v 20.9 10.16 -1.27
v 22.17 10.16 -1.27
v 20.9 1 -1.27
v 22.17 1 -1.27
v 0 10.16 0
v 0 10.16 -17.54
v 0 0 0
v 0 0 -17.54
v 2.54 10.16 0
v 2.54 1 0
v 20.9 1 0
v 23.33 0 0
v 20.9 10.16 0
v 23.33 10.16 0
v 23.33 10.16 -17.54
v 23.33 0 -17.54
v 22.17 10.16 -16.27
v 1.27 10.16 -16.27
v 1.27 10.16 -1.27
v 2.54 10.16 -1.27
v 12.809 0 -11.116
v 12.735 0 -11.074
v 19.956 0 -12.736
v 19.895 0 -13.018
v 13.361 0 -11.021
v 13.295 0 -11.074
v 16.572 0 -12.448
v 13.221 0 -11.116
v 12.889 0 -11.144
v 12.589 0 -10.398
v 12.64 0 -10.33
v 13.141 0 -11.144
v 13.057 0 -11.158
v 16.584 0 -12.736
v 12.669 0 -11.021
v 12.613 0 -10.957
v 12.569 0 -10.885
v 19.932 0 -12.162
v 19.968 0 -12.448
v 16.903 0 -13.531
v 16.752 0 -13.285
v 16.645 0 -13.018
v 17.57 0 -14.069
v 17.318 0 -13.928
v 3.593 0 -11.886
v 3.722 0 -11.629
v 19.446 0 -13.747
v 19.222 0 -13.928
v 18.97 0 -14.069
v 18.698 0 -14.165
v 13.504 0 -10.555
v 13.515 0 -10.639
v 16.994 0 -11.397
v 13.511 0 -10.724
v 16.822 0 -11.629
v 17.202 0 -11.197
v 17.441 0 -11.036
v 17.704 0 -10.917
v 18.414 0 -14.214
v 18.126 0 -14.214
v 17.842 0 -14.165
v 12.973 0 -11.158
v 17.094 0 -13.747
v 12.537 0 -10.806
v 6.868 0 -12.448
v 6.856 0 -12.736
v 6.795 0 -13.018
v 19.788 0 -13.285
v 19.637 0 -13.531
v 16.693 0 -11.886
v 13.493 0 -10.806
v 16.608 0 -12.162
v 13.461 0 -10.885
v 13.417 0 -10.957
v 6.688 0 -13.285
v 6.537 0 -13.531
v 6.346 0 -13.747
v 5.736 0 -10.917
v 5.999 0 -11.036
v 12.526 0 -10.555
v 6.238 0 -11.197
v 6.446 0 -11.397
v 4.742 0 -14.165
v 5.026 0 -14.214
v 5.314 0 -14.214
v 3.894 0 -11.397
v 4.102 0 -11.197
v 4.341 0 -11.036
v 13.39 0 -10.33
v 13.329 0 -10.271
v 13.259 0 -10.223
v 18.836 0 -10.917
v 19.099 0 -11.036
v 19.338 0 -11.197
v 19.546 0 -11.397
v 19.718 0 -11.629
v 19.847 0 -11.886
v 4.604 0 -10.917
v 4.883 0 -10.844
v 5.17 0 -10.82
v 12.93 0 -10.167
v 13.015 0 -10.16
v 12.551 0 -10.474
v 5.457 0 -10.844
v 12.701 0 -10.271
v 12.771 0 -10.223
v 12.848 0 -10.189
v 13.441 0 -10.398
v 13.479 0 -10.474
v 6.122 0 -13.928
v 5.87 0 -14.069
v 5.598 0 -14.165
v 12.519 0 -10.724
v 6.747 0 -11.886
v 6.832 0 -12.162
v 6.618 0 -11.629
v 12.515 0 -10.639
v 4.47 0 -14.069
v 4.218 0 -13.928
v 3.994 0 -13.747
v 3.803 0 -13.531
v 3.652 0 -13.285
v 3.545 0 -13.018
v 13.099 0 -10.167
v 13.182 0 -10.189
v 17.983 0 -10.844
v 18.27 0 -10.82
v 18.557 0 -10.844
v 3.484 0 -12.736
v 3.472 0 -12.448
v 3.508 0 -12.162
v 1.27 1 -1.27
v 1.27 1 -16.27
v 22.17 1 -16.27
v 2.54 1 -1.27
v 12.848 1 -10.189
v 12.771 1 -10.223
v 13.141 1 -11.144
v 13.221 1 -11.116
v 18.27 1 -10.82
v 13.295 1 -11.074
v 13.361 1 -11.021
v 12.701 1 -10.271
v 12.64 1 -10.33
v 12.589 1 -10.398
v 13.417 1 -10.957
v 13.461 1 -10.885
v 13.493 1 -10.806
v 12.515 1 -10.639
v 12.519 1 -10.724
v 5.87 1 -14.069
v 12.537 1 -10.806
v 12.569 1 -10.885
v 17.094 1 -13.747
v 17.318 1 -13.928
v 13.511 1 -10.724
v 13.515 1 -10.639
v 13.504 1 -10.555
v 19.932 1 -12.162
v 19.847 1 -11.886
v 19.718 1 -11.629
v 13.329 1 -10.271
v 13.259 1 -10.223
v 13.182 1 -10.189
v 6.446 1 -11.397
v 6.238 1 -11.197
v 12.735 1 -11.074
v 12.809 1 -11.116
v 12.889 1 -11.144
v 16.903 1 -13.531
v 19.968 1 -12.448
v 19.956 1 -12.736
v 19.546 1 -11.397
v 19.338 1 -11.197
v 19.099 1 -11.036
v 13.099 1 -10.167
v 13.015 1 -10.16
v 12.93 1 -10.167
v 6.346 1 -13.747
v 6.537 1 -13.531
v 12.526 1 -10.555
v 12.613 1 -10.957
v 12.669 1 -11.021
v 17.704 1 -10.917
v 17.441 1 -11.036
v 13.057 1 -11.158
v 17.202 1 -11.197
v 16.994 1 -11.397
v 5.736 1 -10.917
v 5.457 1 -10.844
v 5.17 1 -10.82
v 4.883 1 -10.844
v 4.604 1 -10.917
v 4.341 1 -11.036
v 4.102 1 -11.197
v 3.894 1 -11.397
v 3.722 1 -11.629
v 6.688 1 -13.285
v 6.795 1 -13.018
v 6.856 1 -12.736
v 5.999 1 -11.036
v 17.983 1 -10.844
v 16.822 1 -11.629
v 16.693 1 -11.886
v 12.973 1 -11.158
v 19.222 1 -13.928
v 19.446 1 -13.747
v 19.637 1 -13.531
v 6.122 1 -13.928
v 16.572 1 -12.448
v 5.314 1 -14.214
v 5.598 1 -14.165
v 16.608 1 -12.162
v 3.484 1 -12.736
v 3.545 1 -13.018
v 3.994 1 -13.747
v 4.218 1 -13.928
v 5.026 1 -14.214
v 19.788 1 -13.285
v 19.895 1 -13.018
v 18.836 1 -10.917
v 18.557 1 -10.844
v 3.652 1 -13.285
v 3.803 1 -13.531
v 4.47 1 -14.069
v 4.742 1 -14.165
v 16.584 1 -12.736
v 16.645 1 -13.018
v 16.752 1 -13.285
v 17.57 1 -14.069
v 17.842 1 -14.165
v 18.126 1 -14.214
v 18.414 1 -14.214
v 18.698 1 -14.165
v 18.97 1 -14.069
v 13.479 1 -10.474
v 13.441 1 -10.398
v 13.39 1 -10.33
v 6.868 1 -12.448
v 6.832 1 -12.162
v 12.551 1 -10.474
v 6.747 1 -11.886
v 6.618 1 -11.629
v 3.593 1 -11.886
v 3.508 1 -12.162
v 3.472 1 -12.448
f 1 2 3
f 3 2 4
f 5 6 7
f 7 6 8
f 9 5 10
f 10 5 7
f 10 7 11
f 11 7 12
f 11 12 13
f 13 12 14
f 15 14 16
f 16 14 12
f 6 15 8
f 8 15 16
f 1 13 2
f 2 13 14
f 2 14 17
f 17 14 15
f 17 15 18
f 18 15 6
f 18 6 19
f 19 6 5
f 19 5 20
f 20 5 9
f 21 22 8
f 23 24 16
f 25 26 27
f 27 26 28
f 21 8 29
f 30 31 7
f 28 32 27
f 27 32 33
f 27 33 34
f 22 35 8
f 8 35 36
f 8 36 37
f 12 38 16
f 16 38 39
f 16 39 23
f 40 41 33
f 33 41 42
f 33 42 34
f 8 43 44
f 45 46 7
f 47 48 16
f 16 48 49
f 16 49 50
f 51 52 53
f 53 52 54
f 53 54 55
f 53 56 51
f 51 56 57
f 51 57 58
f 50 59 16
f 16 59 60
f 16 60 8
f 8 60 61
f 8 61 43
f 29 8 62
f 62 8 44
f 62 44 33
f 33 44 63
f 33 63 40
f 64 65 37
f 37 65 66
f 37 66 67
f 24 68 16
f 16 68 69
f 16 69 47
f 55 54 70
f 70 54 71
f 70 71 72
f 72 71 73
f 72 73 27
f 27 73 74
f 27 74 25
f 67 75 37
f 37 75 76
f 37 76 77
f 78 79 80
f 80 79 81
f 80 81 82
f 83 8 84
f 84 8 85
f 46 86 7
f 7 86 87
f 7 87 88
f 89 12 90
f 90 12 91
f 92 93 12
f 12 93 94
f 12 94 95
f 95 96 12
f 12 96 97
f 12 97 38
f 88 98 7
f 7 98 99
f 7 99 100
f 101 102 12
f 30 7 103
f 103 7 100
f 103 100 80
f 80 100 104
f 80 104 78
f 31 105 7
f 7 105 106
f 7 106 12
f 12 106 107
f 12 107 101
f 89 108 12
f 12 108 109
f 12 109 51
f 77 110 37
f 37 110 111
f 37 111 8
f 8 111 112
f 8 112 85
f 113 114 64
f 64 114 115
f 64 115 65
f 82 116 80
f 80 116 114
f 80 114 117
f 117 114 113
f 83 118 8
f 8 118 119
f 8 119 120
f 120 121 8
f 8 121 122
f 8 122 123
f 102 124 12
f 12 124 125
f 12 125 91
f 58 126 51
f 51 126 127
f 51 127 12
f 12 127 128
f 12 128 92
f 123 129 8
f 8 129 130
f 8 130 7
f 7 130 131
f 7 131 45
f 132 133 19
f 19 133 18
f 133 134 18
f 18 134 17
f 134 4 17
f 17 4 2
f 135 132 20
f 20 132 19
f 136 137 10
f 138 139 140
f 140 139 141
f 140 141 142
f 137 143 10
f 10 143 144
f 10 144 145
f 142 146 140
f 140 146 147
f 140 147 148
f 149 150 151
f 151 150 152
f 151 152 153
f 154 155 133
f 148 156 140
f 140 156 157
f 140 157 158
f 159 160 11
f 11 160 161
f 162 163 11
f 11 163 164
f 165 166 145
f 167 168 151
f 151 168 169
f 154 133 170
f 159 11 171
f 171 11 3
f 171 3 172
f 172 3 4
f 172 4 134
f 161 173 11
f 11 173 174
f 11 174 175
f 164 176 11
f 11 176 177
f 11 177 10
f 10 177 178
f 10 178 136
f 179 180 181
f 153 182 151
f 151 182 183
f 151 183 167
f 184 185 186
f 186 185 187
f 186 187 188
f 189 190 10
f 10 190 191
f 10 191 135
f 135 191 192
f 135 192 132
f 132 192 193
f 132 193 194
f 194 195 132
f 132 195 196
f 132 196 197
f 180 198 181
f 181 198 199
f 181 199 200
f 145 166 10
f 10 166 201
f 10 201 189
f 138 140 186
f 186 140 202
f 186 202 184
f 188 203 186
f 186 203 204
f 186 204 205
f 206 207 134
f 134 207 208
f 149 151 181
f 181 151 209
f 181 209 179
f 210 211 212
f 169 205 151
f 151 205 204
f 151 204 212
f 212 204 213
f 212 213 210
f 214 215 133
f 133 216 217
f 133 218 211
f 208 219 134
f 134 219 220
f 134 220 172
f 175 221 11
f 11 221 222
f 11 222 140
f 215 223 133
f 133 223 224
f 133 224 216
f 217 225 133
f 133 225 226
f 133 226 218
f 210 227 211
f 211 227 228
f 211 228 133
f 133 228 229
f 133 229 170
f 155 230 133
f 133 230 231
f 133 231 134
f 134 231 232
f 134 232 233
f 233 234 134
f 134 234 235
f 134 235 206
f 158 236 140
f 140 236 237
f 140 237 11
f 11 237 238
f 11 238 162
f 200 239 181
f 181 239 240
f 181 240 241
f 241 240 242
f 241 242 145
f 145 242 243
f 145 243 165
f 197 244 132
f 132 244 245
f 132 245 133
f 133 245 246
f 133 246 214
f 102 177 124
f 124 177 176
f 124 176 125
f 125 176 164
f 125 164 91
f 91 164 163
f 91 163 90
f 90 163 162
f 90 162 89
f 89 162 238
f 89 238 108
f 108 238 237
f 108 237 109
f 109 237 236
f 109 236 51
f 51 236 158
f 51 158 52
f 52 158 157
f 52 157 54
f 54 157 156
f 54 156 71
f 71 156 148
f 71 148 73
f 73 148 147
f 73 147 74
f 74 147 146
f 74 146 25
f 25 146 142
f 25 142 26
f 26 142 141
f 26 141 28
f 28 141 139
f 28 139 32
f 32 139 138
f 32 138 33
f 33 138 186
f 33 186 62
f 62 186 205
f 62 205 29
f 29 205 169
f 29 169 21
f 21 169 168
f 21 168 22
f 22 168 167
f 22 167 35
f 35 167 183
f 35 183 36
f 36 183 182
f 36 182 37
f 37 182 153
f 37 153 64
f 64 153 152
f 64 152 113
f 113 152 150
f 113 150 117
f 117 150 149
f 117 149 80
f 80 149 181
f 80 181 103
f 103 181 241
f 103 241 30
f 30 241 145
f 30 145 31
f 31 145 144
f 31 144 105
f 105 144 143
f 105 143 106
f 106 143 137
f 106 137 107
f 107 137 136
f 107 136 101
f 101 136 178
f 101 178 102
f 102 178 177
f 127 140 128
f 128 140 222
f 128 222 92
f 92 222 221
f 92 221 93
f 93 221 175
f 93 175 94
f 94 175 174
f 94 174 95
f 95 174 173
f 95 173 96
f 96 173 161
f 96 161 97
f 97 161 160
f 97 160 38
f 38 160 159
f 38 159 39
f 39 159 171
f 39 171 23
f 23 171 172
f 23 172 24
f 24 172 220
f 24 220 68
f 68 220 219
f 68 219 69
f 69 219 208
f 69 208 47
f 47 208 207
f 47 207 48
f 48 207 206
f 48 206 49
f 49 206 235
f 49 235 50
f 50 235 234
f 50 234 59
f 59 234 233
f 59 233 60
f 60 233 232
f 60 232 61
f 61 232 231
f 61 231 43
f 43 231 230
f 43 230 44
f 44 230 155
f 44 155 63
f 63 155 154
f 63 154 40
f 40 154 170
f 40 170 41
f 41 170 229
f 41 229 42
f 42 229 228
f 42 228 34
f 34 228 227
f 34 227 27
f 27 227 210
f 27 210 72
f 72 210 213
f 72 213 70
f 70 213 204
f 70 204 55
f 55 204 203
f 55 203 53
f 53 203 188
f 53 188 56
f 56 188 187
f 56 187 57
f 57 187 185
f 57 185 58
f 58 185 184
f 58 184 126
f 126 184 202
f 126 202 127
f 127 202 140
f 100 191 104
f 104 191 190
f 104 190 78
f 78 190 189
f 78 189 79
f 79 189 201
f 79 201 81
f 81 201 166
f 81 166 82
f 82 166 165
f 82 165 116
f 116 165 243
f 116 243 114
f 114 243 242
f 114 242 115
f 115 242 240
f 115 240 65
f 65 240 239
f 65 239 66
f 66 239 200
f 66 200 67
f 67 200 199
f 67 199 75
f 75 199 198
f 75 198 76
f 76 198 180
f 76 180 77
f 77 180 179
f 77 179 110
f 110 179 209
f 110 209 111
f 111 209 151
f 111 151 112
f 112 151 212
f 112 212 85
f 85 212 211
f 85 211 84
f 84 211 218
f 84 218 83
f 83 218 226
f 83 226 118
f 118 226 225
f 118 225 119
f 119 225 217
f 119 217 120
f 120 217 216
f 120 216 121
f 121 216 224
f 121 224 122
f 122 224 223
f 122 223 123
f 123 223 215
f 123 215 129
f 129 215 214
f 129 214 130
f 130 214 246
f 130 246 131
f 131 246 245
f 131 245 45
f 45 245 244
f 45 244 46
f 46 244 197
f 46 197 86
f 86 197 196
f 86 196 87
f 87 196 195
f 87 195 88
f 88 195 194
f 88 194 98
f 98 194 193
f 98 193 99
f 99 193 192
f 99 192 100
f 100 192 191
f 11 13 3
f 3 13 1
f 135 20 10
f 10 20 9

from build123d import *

# Parameters (mm, degrees)
SKETCH1_W           = 23.33
SKETCH1_H           = 17.54
BOSS_EXTRUDE1_DEPTH = 10.16
SKETCH2_W           = 20.9
SKETCH2_H           = 15
CUT_EXTRUDE1_DEPTH  = 9.16
SKETCH3_R           = 1.7
SKETCH3_R_2         = 0.5
CUT_EXTRUDE2_DEPTH  = 31.591601789
SKETCH4_W           = 18.36
SKETCH4_H           = 12.01194936
CUT_EXTRUDE3_DEPTH  = 31.20310249


with BuildPart() as part:
    # Sketch1 → Boss-Extrude1 (new body)
    with BuildSketch(Plane(origin=(0, 0, 0), x_dir=(1, 0, 0), z_dir=(0, 1, 0))):
        with Locations((11.665, 8.77)):
            Rectangle(SKETCH1_W, SKETCH1_H)
    extrude(amount=BOSS_EXTRUDE1_DEPTH)

    # Sketch2 → Cut-Extrude1 (cut)
    with BuildSketch(Plane(origin=(0, 10.16, 0), x_dir=(1, 0, 0), z_dir=(0, 1, 0))):
        with Locations((11.72, 8.77)):
            Rectangle(SKETCH2_W, SKETCH2_H)
    extrude(amount=-CUT_EXTRUDE1_DEPTH, mode=Mode.SUBTRACT)

    # Sketch3 → Cut-Extrude2 (cut, through all)
    with BuildSketch(Plane(origin=(0, 1, 0), x_dir=(1, 0, 0), z_dir=(0, 1, 0))):
        with Locations(Location((5.17, 12.52, 0), (0, 0, 270))):
            Circle(SKETCH3_R)
        with Locations(Location((18.27, 12.52, 0), (0, 0, 270))):
            Circle(SKETCH3_R)
        with Locations(Location((13.015, 10.66, 0), (0, 0, 270))):
            Circle(SKETCH3_R_2)
    extrude(amount=-CUT_EXTRUDE2_DEPTH, mode=Mode.SUBTRACT)

    # Sketch4 → Cut-Extrude3 (cut, through all)
    with BuildSketch(Plane(origin=(0, 0, -1.27), x_dir=(-1, 0, 0), z_dir=(0, 0, -1))):
        with Locations((-11.72, 7.00597468)):
            Rectangle(SKETCH4_W, SKETCH4_H)
    extrude(amount=-CUT_EXTRUDE3_DEPTH, mode=Mode.SUBTRACT)


solid = part.part
